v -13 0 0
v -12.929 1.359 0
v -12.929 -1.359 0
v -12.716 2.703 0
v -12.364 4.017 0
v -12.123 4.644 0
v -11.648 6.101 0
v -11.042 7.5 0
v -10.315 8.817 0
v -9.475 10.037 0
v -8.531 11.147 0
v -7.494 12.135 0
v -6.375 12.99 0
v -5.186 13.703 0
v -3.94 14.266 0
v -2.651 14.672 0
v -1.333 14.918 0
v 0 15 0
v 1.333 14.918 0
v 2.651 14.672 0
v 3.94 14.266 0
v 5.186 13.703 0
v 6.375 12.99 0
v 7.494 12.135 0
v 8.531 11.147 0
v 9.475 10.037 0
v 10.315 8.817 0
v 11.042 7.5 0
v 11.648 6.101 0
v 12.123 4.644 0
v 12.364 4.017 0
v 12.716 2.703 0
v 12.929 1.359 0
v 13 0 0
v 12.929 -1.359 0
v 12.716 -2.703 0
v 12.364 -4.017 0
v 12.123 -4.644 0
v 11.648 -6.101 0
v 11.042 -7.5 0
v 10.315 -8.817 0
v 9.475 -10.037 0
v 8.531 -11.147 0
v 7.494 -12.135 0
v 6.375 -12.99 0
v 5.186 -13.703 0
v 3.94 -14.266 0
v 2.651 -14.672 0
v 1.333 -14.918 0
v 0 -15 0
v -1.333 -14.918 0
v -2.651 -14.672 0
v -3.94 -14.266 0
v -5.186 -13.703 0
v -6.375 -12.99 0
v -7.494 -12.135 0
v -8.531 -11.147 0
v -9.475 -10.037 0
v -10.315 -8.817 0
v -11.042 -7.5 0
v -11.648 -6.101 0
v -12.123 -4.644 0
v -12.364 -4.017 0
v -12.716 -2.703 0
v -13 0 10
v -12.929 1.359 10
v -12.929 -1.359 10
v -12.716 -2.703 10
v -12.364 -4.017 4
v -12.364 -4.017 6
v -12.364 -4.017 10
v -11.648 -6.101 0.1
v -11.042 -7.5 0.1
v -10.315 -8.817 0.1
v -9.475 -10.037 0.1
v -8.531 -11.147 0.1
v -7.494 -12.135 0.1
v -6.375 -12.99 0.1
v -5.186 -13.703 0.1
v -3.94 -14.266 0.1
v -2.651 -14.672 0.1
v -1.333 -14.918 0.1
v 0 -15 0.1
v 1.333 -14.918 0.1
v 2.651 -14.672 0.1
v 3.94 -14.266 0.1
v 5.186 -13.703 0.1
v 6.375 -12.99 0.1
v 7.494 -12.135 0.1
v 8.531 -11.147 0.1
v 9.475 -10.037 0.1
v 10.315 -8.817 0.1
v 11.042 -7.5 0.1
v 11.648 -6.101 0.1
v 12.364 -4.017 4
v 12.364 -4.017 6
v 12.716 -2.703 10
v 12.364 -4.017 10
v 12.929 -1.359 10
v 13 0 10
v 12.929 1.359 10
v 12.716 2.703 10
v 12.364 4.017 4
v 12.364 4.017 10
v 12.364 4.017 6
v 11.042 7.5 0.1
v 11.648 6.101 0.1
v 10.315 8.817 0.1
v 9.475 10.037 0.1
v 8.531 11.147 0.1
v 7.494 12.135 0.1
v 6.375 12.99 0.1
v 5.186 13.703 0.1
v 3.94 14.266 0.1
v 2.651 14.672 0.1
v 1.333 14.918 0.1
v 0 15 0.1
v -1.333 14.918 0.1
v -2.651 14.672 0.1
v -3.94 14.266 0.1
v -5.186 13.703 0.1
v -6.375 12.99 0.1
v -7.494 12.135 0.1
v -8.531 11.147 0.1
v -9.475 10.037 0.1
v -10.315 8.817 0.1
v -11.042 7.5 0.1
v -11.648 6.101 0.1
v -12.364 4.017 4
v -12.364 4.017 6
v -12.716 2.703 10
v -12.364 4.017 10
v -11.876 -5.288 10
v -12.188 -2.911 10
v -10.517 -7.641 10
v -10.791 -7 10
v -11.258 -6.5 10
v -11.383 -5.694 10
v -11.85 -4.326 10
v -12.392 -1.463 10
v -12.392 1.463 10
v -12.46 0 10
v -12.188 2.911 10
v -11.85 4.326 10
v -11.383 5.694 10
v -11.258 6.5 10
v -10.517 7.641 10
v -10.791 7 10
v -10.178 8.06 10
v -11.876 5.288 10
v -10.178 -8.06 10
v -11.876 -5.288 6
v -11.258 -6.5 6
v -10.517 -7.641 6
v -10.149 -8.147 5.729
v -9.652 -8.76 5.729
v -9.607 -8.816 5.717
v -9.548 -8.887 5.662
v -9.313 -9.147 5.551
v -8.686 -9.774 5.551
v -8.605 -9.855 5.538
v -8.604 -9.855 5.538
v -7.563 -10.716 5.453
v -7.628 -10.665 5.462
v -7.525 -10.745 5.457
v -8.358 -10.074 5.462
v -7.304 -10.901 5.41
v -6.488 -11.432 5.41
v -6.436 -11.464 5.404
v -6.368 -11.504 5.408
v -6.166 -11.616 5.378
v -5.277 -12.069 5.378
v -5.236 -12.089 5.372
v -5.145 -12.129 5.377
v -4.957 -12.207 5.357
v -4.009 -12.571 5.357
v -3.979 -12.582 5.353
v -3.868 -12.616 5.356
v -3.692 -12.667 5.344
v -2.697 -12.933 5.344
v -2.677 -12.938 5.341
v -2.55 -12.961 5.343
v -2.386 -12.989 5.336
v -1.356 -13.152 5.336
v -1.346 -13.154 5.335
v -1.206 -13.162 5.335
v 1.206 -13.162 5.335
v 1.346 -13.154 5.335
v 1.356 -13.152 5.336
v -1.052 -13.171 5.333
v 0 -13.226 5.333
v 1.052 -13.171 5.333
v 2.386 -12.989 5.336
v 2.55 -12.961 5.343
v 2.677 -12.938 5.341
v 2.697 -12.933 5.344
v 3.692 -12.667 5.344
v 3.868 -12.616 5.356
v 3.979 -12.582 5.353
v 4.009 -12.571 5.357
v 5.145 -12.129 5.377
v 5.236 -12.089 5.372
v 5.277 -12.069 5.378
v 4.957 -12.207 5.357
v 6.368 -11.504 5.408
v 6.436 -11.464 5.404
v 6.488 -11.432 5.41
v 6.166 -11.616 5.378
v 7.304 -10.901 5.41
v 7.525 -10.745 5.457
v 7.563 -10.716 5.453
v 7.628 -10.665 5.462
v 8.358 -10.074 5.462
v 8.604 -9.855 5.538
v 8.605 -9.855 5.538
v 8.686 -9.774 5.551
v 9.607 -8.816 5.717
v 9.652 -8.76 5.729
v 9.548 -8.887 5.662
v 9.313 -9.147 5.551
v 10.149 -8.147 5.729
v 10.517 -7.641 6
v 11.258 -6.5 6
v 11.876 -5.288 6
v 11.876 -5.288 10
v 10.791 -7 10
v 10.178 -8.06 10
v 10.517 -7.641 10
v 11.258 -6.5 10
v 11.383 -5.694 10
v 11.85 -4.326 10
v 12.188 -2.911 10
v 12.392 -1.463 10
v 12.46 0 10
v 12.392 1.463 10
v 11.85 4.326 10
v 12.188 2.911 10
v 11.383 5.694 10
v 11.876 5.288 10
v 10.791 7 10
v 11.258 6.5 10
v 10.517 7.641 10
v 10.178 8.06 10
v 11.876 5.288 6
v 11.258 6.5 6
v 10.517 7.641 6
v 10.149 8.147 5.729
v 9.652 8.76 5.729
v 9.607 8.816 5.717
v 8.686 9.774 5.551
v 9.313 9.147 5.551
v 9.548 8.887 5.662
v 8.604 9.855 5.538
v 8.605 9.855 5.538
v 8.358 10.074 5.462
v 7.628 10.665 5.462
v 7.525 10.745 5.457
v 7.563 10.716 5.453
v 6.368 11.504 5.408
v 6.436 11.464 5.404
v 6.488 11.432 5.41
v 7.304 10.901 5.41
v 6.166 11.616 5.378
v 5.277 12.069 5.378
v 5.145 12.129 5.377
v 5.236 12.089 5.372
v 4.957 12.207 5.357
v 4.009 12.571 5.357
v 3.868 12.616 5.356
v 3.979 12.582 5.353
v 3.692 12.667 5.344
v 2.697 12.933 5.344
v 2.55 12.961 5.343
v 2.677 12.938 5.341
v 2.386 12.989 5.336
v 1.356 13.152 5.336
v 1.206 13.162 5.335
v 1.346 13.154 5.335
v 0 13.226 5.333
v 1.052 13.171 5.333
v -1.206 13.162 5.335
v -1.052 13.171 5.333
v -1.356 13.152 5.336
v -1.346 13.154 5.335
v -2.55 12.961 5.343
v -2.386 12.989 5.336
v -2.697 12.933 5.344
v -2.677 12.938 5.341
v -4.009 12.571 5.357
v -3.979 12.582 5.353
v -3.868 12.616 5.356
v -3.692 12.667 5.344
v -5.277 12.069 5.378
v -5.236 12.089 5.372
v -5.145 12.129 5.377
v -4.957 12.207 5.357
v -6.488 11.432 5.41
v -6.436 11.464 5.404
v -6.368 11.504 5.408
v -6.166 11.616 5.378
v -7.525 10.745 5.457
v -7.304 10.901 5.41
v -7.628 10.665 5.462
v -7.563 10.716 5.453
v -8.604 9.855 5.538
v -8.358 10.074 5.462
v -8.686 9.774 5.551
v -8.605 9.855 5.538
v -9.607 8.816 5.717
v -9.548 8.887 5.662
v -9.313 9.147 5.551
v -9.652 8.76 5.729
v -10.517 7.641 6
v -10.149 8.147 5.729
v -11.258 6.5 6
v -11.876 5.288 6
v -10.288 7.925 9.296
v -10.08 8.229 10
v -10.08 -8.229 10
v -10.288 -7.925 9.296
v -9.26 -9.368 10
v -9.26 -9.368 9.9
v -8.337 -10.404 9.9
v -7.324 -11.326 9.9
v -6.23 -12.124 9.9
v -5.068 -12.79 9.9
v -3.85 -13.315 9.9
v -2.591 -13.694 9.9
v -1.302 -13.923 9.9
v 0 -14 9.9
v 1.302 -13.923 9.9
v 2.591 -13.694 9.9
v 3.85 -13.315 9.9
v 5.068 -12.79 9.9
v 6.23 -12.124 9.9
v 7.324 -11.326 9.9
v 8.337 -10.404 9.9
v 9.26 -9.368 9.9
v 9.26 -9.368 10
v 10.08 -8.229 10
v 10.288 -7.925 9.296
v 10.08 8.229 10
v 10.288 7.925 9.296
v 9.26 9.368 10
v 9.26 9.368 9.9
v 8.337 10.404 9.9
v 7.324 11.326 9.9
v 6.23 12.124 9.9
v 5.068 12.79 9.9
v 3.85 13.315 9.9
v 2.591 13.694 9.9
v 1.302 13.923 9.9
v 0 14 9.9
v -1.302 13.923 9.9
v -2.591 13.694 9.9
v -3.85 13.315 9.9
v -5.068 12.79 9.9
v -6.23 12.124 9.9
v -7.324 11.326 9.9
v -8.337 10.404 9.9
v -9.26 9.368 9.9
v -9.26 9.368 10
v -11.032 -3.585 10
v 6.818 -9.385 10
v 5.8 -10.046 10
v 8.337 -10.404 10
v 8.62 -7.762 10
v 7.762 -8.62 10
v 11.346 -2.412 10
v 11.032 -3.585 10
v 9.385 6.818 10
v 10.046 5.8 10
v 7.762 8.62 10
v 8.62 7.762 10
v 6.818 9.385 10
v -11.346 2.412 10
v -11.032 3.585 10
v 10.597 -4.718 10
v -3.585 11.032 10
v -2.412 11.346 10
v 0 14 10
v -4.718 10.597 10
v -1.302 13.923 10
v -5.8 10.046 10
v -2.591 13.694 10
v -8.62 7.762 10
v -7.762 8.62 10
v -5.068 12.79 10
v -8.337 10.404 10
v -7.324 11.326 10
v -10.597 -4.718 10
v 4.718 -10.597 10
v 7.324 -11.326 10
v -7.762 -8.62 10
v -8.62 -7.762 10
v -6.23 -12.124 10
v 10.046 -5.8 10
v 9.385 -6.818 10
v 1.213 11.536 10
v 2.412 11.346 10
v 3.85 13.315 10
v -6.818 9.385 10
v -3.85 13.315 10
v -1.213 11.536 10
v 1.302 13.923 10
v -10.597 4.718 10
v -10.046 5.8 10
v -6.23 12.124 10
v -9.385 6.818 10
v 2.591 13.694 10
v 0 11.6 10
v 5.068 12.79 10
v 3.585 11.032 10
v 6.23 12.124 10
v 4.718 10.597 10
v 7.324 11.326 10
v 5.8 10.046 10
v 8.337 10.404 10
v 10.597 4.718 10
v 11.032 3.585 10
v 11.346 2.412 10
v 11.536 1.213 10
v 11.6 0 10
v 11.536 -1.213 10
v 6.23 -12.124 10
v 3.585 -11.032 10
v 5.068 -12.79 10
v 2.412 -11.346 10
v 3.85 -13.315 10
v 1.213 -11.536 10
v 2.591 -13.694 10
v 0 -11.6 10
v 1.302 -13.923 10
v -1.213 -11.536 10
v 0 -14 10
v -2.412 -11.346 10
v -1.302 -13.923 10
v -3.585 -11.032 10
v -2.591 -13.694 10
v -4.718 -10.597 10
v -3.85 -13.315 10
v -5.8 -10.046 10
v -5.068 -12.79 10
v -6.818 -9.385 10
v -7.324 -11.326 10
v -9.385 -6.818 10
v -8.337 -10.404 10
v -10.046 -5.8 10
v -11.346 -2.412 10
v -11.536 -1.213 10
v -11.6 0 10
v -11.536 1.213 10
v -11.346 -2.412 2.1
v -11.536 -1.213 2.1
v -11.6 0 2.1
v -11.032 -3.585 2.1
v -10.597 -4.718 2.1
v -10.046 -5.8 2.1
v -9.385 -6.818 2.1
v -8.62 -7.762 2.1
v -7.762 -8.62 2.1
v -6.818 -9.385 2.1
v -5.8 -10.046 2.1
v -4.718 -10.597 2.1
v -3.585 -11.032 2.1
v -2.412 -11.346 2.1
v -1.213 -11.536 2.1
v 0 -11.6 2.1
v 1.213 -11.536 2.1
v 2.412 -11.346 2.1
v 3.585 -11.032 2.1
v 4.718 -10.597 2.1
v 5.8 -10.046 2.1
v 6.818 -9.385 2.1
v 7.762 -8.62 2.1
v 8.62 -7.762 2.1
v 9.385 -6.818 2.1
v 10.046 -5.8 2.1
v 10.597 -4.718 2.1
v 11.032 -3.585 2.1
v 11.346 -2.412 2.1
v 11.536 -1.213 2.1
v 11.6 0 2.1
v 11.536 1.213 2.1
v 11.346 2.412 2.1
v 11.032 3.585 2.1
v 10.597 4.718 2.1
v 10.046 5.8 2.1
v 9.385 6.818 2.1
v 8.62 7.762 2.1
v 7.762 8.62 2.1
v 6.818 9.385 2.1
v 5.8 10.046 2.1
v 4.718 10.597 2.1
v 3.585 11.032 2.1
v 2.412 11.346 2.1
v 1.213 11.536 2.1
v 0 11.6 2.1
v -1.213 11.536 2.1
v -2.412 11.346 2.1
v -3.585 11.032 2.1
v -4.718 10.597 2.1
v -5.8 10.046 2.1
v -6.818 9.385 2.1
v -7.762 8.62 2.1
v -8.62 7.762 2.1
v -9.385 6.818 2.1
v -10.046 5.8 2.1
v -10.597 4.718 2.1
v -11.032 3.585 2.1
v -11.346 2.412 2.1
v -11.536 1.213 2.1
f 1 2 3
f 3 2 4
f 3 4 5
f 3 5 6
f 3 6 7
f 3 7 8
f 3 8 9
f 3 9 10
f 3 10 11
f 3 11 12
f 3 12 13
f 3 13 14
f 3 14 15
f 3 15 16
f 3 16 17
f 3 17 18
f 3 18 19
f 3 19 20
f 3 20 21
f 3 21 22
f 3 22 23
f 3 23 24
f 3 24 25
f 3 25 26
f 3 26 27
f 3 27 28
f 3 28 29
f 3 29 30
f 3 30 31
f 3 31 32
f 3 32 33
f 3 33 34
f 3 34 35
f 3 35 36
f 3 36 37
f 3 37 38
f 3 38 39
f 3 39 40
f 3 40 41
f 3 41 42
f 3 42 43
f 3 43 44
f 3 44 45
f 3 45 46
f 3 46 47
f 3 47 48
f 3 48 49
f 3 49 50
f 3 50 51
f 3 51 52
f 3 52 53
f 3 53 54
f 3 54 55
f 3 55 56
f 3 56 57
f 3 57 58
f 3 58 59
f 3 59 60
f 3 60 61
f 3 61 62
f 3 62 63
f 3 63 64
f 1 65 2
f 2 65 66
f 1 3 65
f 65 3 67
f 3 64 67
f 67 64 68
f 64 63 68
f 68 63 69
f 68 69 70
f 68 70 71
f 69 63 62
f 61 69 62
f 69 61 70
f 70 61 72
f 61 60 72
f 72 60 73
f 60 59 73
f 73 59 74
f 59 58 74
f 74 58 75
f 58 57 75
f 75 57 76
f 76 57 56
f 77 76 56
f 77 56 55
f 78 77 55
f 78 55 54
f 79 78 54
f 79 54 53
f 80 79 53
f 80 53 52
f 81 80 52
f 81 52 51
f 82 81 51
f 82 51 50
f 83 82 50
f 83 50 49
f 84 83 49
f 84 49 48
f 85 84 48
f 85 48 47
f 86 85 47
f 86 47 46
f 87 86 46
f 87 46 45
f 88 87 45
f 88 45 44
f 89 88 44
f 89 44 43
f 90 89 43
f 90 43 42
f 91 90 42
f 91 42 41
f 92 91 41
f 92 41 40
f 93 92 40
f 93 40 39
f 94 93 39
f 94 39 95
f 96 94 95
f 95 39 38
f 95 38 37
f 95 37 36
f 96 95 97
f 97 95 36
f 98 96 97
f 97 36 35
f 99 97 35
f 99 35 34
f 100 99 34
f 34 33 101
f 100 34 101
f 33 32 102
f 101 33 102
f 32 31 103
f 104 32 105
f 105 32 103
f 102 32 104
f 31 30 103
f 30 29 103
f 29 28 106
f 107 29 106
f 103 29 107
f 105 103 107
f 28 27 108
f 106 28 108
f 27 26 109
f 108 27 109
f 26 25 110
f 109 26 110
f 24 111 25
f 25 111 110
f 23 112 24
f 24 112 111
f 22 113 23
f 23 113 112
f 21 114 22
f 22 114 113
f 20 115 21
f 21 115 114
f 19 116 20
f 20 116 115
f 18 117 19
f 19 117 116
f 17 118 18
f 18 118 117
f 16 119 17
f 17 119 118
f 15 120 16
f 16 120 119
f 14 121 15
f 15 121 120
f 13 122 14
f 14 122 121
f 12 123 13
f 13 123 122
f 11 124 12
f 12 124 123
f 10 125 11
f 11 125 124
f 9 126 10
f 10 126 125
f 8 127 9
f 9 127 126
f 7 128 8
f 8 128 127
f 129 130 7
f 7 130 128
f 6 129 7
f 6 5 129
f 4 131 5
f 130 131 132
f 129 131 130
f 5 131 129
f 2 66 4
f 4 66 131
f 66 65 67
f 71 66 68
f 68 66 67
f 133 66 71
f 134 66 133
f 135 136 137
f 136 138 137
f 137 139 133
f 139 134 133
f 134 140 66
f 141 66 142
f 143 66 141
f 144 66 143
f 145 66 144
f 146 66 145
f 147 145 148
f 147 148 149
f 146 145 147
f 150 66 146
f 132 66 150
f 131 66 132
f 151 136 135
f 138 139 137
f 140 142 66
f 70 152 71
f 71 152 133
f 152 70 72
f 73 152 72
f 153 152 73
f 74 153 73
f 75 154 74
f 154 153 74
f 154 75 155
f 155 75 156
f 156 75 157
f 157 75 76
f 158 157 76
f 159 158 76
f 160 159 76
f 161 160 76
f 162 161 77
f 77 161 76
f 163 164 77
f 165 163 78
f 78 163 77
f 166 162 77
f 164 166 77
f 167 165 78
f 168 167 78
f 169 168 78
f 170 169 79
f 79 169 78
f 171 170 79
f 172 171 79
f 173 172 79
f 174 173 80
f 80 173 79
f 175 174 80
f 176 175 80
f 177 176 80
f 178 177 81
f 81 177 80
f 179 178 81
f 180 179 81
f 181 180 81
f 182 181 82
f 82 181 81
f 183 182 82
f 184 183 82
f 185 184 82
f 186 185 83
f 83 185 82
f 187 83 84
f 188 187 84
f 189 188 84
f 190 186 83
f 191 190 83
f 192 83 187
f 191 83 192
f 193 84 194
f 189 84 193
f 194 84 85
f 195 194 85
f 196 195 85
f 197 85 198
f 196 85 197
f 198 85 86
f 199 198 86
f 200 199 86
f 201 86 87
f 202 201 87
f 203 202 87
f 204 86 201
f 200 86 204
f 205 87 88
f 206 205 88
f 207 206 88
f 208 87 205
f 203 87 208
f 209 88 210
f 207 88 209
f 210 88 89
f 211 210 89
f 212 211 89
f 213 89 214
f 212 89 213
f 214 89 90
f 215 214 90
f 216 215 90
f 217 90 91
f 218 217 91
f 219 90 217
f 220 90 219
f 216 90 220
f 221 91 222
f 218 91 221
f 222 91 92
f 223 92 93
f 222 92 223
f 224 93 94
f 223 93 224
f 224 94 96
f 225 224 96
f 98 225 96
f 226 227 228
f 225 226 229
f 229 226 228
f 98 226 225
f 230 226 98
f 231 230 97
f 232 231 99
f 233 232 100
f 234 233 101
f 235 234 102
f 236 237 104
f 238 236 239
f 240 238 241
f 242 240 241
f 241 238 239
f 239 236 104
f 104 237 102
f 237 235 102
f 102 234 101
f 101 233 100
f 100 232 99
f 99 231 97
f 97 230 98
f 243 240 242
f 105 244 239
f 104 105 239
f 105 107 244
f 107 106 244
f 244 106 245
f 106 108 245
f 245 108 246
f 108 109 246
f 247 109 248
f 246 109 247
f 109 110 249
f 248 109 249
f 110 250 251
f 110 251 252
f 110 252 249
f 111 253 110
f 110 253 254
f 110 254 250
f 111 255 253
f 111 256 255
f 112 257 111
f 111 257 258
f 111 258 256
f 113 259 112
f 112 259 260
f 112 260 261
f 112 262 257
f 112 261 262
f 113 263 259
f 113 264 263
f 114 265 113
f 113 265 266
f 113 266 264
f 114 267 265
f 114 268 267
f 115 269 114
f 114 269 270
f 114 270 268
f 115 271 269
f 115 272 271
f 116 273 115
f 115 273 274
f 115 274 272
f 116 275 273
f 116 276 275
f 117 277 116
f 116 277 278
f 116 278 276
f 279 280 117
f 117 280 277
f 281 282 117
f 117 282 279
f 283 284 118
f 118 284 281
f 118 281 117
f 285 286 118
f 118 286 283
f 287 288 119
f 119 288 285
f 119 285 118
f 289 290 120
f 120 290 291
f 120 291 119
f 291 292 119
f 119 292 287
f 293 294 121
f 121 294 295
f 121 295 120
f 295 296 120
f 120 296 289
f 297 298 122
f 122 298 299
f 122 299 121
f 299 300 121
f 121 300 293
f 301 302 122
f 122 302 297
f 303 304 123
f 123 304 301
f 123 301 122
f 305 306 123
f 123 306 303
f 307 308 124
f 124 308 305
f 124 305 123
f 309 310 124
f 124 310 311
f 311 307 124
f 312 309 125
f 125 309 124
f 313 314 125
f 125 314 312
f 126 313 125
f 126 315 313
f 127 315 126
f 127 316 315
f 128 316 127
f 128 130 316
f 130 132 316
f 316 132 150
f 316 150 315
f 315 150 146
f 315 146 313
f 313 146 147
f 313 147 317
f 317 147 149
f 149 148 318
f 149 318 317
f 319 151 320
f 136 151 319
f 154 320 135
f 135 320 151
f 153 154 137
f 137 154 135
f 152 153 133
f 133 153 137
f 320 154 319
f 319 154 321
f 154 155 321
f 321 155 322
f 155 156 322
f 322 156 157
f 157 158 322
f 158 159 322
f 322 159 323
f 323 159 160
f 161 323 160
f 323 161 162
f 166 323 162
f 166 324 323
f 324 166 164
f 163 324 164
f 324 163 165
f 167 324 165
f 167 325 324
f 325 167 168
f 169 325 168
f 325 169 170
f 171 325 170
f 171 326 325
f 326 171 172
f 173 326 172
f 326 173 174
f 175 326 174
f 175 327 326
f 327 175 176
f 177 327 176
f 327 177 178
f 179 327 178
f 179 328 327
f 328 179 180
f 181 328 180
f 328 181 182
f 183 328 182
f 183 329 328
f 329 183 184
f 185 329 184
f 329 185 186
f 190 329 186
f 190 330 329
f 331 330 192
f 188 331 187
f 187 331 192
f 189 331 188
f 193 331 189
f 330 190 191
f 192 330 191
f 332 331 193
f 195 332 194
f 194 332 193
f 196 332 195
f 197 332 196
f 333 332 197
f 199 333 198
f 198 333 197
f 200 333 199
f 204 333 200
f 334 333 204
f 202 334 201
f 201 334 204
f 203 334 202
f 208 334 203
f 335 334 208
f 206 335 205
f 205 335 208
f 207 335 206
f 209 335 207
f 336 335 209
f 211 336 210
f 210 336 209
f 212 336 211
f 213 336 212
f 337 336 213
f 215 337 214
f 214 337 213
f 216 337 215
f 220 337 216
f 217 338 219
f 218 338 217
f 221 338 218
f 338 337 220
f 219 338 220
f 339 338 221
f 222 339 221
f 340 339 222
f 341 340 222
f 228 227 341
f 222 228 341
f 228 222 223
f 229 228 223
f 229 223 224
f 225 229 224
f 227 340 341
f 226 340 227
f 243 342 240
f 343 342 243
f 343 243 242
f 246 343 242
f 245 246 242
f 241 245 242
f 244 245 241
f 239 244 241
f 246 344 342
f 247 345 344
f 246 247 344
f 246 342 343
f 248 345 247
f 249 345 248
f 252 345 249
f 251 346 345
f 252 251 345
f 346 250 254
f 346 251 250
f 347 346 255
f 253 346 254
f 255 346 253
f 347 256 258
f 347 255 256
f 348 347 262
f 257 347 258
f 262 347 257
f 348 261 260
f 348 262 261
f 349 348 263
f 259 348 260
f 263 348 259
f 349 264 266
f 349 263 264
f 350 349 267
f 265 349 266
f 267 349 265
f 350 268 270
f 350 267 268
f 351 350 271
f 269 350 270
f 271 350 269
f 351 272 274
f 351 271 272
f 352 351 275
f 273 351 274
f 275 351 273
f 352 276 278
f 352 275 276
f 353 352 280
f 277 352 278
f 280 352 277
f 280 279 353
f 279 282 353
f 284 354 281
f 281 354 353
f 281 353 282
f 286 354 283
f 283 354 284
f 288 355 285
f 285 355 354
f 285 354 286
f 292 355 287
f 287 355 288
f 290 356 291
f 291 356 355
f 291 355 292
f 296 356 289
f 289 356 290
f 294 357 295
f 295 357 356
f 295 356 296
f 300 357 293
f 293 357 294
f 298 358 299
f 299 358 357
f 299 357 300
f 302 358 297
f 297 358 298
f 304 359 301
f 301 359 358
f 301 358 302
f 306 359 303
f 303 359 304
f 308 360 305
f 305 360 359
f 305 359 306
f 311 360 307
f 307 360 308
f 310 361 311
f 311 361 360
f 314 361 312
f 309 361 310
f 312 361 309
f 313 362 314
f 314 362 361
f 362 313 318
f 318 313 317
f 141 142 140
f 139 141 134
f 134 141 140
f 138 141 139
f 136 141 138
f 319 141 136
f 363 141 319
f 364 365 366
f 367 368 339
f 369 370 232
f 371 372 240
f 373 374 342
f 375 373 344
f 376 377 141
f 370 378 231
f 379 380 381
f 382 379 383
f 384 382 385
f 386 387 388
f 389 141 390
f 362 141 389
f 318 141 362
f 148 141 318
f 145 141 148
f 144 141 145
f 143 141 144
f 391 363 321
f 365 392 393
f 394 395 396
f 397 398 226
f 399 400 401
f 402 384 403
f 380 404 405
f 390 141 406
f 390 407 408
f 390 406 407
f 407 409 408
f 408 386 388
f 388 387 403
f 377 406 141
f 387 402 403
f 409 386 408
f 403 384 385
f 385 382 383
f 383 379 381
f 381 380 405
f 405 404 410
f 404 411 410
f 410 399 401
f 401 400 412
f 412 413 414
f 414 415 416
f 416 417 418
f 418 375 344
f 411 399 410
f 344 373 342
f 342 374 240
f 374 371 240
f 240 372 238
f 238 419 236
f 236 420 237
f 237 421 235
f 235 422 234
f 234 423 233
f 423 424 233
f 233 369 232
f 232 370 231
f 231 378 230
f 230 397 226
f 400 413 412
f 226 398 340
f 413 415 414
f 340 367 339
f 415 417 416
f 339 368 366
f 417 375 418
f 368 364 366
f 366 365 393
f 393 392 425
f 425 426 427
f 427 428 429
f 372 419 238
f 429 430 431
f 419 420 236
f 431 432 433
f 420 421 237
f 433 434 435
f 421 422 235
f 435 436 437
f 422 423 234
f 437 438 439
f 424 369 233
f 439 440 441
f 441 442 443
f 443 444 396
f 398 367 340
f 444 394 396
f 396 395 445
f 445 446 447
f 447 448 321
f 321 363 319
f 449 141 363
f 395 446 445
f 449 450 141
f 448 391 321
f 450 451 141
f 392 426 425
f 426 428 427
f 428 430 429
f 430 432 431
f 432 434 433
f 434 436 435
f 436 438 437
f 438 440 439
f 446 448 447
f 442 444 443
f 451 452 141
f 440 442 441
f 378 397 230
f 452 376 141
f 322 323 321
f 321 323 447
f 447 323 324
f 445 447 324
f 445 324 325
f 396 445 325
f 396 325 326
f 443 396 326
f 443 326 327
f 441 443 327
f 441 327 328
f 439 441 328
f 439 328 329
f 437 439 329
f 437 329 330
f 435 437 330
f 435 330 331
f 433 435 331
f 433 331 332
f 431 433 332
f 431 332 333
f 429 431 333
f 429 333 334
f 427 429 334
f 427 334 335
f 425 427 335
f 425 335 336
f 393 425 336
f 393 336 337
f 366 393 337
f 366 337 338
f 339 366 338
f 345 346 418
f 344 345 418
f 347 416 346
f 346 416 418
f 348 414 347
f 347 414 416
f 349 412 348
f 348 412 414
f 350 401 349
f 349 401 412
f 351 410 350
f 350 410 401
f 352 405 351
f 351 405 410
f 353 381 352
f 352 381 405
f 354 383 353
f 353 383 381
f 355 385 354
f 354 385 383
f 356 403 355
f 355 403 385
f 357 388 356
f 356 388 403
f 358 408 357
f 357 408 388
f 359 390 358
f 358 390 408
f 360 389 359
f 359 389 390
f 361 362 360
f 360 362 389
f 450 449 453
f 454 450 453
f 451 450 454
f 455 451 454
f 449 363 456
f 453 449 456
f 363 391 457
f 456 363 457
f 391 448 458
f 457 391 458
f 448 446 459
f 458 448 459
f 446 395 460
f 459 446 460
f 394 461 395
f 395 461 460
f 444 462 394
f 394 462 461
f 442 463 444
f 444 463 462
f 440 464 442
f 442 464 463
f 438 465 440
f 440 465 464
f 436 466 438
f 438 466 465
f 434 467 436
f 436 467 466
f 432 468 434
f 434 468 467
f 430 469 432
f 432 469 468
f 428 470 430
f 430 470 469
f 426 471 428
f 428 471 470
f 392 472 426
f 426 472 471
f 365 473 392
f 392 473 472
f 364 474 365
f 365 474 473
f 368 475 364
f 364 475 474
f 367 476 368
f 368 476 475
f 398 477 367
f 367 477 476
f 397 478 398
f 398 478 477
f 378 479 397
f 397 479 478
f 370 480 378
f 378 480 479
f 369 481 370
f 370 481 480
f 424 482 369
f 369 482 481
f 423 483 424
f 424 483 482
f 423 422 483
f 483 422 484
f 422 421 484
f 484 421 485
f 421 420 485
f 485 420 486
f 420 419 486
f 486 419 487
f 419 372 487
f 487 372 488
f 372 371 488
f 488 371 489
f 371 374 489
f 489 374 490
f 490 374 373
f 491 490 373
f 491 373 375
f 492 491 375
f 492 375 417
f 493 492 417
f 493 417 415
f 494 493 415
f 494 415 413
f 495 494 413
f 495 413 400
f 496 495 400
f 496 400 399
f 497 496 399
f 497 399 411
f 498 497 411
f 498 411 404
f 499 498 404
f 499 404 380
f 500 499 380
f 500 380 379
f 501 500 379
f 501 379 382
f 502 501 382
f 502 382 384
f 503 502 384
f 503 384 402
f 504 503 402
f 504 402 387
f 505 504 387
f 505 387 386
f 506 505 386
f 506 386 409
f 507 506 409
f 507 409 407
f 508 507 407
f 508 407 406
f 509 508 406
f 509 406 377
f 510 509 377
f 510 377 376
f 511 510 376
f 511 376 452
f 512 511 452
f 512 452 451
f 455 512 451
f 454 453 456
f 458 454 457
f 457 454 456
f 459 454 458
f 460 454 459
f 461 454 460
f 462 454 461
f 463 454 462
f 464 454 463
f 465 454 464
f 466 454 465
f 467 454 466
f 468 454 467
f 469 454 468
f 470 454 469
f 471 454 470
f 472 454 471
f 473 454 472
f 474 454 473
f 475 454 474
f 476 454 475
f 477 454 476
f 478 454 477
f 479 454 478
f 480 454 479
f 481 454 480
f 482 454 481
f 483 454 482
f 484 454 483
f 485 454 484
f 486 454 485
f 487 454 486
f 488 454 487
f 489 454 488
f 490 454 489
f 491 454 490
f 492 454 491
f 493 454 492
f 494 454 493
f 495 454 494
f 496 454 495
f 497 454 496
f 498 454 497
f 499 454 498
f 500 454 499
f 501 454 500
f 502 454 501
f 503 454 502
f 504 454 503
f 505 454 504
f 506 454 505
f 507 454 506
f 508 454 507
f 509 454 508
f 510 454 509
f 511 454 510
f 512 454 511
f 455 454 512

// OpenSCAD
$fn=60;
//ring 1
/*
difference() {
	cylinder(10,15,15);
	translate([0,0,-1]) cylinder(12,10,10);
}

//ring 2
translate([30,0,0]) {
	difference() {
		cylinder(10,10,10);
		translate([0,0,-1]) cylinder(12,5,5);
	}
}

//ring 2
translate([-25,0,0]) {
	difference() {
		cylinder(10,5,5);
		translate([0,0,-1]) cylinder(12,1,1);
	}
}
*/

difference() {
	union() {
		cylinder(10,13,13); //outer
		hull() {
			translate([0,0,4]) cylinder(2,13,13); //inner
			scale([.85,1,1]) cylinder(.1,15,15);
		}
		hull() {
			translate([0,0,4]) cylinder(2,13,13); //inner
			translate([0,0,9.9]) scale([.89,1,1]) cylinder(.1,14,14);
		}
	}
	translate([0,0,2.1]) cylinder(8,11.6,11.6); //inner
}
